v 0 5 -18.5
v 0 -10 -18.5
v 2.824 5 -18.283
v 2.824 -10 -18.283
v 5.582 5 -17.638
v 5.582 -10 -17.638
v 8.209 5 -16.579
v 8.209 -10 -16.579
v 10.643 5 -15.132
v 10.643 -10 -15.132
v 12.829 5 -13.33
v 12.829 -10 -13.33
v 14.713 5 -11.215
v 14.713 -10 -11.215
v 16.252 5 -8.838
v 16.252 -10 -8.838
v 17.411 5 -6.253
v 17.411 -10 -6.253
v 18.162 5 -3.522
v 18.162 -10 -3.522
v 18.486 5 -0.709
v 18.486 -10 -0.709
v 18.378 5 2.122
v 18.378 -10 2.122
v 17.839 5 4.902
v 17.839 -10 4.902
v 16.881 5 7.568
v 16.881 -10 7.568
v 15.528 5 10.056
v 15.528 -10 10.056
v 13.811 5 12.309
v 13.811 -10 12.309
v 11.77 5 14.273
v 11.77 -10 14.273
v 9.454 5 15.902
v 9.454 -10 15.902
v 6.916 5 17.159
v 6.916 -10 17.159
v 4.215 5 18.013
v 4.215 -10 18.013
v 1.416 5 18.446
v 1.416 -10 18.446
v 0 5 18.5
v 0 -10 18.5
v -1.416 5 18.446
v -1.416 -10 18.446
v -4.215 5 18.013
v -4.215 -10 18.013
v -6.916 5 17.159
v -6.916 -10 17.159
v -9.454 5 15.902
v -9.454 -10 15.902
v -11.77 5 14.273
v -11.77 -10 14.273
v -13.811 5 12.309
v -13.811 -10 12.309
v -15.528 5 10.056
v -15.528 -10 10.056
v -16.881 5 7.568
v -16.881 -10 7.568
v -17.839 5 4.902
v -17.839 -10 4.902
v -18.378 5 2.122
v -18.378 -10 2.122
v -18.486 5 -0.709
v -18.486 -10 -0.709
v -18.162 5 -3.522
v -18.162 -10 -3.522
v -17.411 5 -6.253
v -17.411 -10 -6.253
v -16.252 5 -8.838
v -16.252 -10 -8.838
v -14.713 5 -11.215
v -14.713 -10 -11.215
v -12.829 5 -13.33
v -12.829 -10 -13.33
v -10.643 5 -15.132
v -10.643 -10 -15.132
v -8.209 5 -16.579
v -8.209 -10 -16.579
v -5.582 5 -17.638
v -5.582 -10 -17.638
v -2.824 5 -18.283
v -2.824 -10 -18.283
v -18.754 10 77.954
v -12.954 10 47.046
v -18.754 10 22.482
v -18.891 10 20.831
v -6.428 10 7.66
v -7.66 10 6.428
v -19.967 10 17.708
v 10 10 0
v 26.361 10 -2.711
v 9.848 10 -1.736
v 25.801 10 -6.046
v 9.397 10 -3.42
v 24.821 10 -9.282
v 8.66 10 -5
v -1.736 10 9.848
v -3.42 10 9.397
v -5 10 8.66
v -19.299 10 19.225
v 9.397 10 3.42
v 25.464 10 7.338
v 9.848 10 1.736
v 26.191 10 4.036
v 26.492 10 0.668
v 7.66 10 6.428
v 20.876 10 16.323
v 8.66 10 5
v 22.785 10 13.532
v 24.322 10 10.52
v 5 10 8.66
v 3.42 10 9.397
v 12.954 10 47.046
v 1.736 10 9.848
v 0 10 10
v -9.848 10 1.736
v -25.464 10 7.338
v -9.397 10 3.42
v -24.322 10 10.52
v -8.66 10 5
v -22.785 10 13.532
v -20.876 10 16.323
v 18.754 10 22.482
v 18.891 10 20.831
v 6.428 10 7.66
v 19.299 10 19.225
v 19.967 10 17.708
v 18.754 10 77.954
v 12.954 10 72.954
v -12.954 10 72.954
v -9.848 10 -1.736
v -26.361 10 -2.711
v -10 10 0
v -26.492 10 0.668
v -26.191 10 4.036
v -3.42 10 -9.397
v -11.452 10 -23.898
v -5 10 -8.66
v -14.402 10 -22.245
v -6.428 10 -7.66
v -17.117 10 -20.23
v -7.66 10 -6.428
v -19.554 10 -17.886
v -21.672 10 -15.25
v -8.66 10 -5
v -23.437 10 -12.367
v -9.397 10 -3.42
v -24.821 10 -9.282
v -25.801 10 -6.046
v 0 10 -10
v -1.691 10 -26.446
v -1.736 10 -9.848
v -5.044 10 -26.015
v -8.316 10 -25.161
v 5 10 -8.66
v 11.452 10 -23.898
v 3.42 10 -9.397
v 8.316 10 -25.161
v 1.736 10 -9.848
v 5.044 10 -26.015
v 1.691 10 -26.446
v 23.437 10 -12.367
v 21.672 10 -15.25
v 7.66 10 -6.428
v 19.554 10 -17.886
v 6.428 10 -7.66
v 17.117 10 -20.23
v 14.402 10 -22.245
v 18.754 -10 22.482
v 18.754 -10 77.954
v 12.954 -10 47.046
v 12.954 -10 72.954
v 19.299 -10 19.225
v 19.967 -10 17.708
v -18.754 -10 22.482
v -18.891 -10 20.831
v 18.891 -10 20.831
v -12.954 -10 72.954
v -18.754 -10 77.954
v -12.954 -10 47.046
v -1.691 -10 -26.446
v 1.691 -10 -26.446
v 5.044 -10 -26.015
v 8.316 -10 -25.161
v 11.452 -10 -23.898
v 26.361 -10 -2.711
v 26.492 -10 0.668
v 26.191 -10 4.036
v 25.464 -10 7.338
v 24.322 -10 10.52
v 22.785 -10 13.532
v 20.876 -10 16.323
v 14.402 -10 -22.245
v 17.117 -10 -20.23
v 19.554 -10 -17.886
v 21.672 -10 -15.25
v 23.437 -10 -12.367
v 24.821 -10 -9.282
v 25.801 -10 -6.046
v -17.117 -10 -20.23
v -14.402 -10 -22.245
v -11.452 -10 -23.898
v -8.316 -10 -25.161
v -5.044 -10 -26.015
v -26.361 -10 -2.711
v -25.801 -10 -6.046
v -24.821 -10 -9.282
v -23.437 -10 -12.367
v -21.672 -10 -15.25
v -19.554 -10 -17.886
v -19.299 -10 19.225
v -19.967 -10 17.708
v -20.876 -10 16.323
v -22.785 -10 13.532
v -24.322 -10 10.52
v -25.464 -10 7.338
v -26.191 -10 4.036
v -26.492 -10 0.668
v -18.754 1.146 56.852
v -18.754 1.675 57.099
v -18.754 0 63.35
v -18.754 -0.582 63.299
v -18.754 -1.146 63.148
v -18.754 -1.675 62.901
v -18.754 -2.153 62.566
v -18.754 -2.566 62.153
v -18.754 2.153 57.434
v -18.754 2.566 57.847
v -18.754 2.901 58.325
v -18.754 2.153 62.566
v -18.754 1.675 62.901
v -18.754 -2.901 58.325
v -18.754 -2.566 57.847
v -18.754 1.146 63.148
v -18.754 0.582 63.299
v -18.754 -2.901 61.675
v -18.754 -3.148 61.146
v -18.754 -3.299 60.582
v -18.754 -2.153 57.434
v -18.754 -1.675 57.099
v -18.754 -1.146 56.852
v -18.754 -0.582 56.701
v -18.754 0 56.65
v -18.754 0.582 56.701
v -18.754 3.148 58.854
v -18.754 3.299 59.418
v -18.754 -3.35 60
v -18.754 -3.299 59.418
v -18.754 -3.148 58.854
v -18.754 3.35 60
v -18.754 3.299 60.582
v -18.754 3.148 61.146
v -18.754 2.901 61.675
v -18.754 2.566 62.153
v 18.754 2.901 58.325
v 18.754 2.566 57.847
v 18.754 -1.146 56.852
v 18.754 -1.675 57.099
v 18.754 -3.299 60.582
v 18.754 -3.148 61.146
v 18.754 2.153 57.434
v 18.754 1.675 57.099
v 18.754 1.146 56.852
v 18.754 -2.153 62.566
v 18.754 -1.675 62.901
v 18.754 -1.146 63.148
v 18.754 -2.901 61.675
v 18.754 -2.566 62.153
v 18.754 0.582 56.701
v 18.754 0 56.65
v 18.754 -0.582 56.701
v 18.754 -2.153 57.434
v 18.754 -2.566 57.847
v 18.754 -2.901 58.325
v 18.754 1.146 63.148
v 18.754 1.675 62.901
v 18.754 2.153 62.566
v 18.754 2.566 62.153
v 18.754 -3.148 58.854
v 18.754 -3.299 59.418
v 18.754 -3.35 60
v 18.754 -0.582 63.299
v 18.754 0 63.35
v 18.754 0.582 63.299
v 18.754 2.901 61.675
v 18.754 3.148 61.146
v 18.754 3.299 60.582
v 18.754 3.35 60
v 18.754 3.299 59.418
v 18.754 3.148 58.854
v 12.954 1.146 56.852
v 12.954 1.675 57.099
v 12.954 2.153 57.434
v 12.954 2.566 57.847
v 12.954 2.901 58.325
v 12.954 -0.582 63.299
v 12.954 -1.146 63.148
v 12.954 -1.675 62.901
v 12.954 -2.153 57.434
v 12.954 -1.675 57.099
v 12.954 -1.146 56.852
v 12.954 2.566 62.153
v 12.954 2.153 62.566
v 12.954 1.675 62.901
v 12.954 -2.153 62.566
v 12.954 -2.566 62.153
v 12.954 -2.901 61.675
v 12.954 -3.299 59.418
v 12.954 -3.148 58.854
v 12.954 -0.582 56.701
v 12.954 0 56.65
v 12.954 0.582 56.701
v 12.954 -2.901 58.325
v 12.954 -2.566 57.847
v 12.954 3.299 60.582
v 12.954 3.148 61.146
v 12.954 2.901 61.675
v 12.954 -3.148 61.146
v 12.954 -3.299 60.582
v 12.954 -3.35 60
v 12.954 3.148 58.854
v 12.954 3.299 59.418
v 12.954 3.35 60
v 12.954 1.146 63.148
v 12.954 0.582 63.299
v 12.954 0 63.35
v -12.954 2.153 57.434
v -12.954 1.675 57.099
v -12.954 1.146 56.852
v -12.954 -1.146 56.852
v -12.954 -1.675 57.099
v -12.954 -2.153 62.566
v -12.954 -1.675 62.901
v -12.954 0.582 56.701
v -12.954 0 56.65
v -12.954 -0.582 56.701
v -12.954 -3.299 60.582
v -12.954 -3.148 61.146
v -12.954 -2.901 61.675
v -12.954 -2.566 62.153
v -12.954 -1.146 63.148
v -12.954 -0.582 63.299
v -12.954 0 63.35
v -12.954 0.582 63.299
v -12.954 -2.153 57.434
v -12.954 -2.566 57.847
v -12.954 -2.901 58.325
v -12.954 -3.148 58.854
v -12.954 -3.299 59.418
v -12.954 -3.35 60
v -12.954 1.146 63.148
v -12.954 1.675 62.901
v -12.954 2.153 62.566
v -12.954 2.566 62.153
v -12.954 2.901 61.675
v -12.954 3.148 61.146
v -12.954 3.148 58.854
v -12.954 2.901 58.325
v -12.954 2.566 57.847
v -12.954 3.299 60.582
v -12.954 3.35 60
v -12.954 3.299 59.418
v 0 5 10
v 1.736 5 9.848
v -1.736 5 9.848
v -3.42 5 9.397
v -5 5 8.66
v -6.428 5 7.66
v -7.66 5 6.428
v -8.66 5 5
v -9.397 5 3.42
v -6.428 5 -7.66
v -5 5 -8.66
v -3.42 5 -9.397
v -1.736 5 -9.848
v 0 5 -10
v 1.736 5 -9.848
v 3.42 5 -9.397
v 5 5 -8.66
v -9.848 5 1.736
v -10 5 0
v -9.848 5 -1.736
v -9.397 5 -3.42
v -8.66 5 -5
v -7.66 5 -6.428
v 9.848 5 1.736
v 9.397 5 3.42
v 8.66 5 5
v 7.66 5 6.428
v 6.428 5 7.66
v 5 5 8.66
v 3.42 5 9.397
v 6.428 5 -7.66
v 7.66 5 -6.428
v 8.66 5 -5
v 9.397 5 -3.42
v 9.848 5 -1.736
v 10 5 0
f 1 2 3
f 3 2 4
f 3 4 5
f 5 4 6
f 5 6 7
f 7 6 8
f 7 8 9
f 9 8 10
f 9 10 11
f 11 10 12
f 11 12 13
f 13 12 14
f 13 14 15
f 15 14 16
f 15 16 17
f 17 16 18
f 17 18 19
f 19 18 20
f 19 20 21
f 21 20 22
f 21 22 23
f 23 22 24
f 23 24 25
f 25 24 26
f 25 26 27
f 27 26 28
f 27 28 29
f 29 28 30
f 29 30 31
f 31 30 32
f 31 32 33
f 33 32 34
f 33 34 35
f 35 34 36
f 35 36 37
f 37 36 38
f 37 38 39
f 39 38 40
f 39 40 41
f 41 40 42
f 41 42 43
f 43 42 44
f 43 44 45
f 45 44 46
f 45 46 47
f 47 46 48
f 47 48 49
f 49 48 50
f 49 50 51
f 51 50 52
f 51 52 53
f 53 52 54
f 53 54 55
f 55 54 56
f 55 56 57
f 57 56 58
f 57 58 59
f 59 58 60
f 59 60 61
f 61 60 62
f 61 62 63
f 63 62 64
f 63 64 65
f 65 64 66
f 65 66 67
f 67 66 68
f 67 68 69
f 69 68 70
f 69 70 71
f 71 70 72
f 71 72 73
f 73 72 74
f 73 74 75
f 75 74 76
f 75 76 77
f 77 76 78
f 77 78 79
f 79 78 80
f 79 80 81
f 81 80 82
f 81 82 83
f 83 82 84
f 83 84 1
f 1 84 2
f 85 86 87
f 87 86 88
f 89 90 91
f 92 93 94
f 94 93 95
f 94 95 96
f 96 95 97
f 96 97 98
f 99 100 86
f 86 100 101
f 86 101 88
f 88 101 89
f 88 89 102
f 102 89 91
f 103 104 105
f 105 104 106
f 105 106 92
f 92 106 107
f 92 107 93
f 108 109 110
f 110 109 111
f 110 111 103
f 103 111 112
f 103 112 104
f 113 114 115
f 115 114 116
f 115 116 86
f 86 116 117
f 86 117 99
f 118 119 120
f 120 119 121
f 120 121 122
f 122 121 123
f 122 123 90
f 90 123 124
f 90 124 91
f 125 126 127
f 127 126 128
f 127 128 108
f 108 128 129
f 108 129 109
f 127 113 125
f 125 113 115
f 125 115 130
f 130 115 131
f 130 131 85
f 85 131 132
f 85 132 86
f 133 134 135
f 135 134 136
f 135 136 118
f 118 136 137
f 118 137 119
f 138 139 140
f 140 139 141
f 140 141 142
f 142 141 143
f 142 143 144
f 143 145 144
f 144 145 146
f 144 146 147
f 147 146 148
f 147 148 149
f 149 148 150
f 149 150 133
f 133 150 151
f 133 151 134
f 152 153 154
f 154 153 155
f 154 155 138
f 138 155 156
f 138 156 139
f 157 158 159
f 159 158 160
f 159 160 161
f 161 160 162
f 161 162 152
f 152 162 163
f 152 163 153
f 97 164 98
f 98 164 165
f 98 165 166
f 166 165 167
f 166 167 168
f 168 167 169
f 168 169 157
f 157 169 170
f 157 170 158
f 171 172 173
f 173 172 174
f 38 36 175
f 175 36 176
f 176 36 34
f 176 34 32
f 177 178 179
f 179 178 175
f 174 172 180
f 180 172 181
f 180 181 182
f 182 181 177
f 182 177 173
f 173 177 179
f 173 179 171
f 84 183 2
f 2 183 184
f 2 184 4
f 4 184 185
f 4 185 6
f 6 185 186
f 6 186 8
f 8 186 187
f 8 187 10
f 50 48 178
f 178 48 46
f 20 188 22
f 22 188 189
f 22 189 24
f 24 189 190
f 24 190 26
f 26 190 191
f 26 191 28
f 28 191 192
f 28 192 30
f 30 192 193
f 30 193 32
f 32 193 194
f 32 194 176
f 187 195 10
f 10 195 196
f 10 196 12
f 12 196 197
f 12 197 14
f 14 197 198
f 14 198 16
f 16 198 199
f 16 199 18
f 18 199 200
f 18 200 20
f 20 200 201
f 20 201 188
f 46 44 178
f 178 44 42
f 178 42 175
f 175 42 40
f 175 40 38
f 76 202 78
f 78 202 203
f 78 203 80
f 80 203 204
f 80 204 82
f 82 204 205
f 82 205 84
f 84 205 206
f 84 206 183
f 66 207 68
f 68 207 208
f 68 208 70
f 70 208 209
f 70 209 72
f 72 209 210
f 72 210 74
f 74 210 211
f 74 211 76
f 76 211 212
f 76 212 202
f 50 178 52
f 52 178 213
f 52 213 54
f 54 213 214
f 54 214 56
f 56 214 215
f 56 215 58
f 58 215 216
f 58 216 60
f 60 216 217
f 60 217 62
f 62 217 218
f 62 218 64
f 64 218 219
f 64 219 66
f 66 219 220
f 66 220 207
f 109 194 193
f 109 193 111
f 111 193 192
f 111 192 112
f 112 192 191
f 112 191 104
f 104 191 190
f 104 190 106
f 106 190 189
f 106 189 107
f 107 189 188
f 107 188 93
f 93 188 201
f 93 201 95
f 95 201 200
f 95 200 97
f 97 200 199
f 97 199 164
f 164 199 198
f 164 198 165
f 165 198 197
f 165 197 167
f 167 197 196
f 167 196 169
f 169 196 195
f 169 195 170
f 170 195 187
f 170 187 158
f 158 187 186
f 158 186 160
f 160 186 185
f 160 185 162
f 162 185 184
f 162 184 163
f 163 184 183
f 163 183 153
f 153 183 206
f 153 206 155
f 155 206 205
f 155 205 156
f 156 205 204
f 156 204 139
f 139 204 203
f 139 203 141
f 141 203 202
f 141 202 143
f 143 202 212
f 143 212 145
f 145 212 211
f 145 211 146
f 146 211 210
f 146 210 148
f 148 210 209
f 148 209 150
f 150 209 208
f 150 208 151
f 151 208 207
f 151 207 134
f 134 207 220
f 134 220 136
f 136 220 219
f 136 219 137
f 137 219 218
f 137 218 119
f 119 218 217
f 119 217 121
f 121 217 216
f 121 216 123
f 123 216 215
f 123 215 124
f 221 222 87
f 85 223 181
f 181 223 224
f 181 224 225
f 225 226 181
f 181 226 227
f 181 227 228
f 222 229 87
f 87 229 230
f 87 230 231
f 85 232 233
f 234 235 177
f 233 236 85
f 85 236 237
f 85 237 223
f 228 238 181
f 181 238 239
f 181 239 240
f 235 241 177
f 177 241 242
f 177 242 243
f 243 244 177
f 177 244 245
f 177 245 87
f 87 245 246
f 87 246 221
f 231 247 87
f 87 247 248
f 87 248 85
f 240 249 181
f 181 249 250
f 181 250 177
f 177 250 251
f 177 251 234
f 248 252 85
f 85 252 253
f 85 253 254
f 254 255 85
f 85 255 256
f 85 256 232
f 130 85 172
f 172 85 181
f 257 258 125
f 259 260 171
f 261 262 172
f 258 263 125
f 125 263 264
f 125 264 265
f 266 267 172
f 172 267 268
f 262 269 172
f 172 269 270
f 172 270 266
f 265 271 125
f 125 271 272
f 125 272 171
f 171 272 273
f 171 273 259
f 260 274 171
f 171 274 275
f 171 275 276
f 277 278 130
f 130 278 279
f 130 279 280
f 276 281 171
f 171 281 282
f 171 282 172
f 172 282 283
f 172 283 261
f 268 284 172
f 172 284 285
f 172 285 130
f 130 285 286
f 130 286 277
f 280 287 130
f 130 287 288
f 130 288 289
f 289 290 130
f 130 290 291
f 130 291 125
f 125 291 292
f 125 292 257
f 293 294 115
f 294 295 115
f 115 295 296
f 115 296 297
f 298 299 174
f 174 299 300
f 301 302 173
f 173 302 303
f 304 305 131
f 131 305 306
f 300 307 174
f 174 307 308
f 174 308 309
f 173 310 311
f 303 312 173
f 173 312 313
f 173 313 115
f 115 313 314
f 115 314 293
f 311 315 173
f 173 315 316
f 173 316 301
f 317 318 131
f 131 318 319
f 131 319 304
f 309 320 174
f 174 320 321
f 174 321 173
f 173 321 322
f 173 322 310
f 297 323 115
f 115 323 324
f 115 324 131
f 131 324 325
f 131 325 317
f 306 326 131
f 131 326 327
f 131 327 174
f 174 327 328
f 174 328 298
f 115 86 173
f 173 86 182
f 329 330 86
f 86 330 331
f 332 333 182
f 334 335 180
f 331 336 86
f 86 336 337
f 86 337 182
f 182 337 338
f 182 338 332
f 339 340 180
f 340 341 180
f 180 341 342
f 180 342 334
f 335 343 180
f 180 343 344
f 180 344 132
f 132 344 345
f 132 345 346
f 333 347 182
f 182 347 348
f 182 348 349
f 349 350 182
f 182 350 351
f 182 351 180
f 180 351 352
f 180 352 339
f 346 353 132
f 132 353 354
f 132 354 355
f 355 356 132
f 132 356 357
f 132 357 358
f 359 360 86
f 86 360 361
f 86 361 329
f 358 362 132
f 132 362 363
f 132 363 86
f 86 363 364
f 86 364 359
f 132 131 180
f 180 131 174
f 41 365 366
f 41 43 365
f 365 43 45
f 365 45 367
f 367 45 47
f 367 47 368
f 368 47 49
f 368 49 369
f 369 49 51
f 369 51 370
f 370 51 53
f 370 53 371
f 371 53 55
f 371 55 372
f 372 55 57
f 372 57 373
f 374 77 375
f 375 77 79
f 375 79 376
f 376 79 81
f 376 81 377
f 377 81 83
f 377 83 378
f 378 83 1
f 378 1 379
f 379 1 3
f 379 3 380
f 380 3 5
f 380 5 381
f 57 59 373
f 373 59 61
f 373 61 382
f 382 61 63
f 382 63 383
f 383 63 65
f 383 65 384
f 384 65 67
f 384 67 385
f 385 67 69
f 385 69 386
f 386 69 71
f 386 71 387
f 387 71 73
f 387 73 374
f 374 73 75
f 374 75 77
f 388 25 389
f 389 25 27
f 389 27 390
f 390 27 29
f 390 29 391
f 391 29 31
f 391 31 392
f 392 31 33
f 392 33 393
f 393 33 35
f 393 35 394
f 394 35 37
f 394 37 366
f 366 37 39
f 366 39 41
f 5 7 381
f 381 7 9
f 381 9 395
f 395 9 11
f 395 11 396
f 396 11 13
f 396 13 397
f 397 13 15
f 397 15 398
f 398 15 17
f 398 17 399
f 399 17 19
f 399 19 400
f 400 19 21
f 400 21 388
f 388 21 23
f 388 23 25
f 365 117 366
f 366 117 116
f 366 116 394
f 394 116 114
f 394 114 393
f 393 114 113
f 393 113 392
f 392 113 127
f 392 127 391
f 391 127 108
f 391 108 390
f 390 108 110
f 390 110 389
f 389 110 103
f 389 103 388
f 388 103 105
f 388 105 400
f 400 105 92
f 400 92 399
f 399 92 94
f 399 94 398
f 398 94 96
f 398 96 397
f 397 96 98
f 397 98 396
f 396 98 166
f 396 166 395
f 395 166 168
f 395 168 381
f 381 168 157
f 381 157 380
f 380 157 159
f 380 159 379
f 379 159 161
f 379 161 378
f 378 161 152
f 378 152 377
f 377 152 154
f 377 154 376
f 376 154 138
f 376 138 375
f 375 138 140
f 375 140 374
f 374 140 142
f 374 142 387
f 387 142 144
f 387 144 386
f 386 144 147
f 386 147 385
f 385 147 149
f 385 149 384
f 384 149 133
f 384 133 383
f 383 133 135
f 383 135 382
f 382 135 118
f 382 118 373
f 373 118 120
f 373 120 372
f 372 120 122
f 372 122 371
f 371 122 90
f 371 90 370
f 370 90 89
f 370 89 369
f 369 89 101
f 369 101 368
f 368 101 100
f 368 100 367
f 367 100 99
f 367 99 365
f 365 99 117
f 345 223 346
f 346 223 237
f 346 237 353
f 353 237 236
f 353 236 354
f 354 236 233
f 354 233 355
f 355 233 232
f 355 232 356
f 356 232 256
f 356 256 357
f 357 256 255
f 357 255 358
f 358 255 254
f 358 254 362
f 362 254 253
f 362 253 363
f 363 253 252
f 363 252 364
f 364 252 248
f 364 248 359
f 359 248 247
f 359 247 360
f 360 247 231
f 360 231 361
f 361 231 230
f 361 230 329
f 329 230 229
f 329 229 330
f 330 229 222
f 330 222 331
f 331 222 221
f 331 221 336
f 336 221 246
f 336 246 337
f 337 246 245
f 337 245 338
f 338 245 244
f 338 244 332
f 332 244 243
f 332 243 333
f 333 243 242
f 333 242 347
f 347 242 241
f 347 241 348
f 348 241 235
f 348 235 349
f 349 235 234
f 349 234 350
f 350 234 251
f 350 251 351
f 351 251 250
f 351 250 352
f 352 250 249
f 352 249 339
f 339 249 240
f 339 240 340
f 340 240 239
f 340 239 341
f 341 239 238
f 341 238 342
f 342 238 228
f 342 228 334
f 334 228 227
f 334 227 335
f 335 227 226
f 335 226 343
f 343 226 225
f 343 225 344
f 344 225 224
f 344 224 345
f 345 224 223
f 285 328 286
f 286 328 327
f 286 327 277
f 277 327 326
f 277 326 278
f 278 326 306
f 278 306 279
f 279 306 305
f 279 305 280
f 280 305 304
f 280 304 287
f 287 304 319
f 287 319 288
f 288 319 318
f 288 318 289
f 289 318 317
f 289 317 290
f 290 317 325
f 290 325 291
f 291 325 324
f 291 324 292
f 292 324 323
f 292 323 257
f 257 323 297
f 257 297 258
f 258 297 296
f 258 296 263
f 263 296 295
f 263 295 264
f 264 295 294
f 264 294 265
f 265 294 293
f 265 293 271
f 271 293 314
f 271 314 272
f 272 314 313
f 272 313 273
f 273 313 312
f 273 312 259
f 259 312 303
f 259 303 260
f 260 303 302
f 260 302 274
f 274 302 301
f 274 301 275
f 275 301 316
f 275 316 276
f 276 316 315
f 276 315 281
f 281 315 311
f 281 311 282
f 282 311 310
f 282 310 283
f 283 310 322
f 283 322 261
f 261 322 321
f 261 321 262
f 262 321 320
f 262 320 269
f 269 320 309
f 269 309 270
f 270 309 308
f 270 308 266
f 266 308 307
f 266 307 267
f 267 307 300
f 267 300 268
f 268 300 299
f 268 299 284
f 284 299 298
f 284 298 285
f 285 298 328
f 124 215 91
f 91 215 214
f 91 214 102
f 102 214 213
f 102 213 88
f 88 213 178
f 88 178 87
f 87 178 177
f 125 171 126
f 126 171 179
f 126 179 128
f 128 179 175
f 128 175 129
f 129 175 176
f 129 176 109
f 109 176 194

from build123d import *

# Parameters (mm, degrees)
SKETCH1_R           = 18.5
SKETCH1_W           = 25.908
SKETCH1_H           = 25.908
BOSS_EXTRUDE1_DEPTH = 10
SKETCH2_R           = 26.5
SKETCH2_R_2         = 10
BOSS_EXTRUDE2_DEPTH = 5
SKETCH3_W           = 42.310591005
SKETCH3_H           = 3.35
FILLET1_R           = 10


with BuildPart() as part:
    # Sketch1 → Boss-Extrude1 (new, symmetric)
    with BuildSketch(Plane(origin=(0, 0, 0), x_dir=(1, 0, 0), z_dir=(0, 1, 0))):
        with BuildLine():
            Line((-18.754, -77.954), (18.754, -77.954))
            Line((18.754, -77.954), (18.754, -18.722646287))
            ThreePointArc((18.754, -18.722646287), (0, 26.5), (-18.754, -18.722646287))
            Line((-18.754, -18.722646287), (-18.754, -77.954))
        make_face()
        with Locations(Location((0, 0, 0), (0, 0, 270))):
            Circle(SKETCH1_R, mode=Mode.SUBTRACT)
        with Locations((0, -60)):
            Rectangle(SKETCH1_W, SKETCH1_H, mode=Mode.SUBTRACT)
    extrude(amount=BOSS_EXTRUDE1_DEPTH, both=True)

    # Sketch2 → Boss-Extrude2 (add)
    with BuildSketch(Plane(origin=(0, 10, 0), x_dir=(1, 0, 0), z_dir=(0, 1, 0))):
        Circle(SKETCH2_R)
        with Locations(Location((0, 0, 0), (0, 0, 270))):
            Circle(SKETCH2_R_2, mode=Mode.SUBTRACT)
    extrude(amount=-BOSS_EXTRUDE2_DEPTH)

    # Sketch3 → Cut-Revolve1 (revolve, cut)
    with BuildSketch(Plane(origin=(0, 0, 0), x_dir=(1, 0, 0), z_dir=(0, 1, 0))):
        with Locations((0.530790347, -58.325)):
            Rectangle(SKETCH3_W, SKETCH3_H)
    revolve(axis=Axis((-24.494150326, 0, 60), (1, 0, 0)), mode=Mode.SUBTRACT)

    # Fillet1
    fillet1_edges = [part.edges().sort_by_distance(p)[0] for p in [
        (18.754, 0, 18.722646287),
        (-18.754, 0, 18.722646287),
    ]]
    fillet(fillet1_edges, radius=FILLET1_R)


solid = part.part
